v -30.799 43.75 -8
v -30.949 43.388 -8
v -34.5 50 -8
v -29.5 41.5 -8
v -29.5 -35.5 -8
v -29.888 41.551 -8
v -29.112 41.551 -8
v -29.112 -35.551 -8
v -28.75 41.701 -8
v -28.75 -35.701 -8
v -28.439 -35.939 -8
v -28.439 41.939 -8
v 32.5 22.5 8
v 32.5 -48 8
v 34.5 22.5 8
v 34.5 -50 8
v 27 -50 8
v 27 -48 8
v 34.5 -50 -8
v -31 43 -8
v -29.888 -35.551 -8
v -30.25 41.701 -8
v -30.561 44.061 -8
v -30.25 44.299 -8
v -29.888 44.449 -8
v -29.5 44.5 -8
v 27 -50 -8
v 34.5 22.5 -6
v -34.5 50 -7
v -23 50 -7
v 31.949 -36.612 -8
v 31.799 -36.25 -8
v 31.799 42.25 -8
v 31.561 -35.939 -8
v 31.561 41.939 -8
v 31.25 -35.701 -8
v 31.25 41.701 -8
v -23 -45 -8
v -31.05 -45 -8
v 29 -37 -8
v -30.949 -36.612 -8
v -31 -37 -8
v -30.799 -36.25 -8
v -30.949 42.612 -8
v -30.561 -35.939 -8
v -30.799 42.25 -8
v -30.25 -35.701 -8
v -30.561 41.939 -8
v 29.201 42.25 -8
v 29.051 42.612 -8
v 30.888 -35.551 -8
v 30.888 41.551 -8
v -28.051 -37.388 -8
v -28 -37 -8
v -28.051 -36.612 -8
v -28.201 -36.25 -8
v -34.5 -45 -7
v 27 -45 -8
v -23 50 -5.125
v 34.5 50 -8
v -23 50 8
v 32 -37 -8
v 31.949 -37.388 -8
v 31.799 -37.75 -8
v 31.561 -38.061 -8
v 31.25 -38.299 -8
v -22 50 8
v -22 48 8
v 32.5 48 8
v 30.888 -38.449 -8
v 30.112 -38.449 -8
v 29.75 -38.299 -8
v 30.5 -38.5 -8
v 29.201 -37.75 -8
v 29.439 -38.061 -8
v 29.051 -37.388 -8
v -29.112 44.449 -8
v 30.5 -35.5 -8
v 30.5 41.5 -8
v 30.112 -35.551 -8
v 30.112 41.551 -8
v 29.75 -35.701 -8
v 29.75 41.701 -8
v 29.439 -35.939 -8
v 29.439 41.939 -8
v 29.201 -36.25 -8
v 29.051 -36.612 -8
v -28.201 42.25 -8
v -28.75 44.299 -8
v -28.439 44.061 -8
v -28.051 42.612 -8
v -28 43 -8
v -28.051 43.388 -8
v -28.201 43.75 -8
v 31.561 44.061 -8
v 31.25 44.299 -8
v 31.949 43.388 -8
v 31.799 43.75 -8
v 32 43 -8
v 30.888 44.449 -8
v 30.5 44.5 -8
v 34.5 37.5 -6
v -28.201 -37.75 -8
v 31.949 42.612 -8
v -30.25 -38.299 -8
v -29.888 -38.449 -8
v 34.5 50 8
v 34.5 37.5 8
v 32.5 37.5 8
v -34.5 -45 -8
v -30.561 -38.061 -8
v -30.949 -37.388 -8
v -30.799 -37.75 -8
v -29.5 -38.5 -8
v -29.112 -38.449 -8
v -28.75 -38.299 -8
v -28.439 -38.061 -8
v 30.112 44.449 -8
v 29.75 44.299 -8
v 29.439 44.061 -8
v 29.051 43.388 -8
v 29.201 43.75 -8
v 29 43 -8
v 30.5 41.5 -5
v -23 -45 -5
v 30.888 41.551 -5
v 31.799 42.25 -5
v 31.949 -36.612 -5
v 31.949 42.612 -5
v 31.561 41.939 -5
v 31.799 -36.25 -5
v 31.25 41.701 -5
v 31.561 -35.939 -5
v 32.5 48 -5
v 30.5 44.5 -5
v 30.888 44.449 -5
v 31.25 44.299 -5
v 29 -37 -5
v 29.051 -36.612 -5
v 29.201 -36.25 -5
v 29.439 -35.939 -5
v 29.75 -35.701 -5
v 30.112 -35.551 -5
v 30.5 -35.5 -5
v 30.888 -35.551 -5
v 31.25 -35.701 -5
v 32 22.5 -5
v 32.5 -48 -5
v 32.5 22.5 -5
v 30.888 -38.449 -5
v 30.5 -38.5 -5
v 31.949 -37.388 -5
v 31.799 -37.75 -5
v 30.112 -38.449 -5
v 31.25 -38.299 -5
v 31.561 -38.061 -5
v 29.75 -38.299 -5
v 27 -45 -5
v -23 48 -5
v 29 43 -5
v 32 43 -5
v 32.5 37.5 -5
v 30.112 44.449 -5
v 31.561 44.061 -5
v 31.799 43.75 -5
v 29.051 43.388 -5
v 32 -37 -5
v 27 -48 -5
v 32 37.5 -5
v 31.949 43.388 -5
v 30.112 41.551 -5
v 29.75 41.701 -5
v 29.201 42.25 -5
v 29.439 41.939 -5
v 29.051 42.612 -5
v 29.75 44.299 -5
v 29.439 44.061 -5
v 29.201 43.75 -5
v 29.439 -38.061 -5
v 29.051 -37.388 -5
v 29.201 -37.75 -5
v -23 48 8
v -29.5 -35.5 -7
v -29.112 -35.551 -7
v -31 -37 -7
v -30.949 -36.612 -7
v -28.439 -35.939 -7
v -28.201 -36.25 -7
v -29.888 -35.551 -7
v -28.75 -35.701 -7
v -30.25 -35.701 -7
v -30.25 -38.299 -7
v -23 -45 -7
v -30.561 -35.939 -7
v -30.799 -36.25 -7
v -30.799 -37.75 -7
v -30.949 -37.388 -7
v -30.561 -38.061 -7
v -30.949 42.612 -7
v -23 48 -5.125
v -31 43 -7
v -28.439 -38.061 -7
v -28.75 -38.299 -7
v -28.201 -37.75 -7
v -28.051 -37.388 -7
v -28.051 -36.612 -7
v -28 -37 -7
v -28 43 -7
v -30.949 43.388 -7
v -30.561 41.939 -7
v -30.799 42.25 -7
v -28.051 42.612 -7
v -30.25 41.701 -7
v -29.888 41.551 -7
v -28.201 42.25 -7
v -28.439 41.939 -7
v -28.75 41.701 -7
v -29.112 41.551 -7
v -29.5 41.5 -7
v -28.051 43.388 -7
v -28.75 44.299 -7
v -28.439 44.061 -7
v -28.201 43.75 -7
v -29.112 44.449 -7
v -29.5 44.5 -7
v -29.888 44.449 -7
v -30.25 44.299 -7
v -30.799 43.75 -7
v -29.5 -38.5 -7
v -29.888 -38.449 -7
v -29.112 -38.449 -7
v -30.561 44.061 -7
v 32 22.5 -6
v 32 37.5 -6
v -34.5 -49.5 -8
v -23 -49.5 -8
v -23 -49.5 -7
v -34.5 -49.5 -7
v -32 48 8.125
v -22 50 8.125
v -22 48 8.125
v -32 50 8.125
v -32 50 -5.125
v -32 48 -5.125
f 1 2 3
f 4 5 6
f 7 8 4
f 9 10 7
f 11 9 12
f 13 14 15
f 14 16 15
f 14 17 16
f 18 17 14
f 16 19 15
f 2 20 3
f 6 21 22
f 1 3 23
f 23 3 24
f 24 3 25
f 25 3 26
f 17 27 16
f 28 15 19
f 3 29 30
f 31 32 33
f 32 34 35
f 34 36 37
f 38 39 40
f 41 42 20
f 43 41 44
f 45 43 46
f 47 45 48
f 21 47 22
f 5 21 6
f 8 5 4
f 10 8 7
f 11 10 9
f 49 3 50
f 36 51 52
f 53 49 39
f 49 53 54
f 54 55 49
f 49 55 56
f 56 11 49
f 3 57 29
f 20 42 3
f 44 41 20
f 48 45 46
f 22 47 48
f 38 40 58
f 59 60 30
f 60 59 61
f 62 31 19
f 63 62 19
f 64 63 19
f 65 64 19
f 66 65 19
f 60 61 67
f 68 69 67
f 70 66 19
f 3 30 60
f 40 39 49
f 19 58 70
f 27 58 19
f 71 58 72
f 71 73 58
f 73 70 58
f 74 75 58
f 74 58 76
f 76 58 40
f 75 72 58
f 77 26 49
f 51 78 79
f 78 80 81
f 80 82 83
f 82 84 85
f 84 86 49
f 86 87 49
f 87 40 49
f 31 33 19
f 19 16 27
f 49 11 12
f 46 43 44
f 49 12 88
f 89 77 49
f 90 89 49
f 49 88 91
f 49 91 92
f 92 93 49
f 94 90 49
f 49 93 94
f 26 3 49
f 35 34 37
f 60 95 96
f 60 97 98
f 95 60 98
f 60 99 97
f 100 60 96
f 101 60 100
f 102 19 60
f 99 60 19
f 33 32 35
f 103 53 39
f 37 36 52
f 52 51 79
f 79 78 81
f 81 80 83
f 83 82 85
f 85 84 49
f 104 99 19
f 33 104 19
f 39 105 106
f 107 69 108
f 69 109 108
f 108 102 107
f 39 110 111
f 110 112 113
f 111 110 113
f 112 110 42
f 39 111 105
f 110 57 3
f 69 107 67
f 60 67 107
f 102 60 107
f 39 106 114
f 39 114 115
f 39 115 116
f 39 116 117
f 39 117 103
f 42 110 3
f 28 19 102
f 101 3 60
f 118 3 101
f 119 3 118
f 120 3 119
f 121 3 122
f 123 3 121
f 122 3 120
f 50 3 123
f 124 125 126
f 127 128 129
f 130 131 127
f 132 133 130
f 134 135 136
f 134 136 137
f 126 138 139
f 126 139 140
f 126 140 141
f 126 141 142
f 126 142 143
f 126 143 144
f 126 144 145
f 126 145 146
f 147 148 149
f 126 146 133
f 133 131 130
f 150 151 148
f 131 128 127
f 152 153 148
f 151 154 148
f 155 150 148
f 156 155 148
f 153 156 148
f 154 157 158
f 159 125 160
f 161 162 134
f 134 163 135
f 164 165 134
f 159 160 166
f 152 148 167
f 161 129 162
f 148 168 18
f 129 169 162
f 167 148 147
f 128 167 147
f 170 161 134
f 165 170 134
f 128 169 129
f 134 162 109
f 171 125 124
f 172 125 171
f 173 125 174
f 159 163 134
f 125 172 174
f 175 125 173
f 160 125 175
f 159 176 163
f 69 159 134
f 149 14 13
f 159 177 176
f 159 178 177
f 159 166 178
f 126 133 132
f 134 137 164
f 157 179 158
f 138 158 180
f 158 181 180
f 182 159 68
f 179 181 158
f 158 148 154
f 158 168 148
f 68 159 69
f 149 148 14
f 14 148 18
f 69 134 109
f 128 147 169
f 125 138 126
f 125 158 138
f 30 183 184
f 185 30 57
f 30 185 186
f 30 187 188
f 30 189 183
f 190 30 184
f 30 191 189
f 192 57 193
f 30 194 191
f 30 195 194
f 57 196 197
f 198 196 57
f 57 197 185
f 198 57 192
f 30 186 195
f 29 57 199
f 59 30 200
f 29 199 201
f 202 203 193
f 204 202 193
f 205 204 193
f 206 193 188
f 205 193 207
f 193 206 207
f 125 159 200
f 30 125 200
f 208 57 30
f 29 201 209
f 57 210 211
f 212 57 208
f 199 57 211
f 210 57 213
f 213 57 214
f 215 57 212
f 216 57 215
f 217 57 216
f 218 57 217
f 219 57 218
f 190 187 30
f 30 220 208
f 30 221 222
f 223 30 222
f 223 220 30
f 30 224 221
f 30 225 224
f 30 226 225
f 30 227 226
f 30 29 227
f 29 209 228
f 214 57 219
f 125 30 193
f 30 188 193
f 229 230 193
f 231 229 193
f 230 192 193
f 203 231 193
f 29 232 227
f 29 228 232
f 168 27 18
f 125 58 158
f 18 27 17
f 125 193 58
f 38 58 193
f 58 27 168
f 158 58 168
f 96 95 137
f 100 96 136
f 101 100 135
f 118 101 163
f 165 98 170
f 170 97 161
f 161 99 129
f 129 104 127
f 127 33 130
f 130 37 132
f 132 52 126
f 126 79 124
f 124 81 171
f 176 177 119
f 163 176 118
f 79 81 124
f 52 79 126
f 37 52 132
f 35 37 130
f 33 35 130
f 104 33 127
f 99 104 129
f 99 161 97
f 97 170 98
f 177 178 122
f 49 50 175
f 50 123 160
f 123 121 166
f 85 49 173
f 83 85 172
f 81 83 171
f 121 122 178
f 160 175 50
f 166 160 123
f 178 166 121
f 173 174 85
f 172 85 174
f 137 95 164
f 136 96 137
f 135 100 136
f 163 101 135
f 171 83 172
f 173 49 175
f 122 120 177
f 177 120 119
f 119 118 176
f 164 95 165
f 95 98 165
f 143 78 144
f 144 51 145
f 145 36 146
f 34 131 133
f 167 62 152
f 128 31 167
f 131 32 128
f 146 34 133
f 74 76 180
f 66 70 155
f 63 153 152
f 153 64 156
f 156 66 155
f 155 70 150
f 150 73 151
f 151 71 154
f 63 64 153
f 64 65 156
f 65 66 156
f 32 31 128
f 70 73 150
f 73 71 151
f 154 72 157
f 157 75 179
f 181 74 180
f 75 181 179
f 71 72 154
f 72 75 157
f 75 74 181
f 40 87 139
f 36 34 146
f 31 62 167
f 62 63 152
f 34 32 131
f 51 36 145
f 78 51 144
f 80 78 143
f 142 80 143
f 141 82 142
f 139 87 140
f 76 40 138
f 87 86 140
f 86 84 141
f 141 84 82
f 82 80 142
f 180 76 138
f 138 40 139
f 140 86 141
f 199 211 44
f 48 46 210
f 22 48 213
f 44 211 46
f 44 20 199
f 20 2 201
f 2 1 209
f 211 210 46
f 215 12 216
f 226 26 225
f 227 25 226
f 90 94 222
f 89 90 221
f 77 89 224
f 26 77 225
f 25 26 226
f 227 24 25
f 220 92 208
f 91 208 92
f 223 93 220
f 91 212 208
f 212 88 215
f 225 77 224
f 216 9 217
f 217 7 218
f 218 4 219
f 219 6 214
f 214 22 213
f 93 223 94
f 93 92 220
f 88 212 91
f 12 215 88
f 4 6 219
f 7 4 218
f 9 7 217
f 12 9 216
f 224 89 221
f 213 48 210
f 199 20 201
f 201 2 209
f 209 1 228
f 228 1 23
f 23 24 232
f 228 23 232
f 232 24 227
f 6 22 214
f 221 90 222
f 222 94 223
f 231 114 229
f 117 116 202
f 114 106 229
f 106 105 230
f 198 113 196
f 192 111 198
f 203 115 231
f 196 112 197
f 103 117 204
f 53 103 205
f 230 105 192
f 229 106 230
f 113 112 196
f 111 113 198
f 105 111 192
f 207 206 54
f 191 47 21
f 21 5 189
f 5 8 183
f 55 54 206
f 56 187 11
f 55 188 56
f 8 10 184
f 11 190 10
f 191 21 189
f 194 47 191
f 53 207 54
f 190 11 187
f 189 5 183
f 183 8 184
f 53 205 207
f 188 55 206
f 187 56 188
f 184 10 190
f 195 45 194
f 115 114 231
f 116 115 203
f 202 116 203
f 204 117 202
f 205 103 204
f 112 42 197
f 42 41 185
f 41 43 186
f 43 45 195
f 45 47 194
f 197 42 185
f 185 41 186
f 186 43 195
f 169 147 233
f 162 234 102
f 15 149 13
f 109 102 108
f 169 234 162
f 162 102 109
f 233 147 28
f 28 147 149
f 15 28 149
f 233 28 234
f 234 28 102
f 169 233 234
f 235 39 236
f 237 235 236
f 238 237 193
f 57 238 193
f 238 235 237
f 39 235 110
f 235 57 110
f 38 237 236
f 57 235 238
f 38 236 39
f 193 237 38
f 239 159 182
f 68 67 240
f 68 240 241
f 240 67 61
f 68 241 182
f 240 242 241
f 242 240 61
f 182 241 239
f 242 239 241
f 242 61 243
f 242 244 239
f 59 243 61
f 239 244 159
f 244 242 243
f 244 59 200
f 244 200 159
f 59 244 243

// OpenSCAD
$fa = 1;
$fs = 0.4;


vpl = 69;
vpw = 100;
vph = 16;

module video_plate() {
    union() {
        difference() {
            cube([vpl,vpw,vph], center=true);  // outer cube
            translate([0, 0, 2])
                cube([vpl-4, vpw-4, vph-2], center=true);  // inner cube
            translate([-(vpl/2) + 4, 0, 1])
                cube([15, vpw, vph], center=true); // cut out for adjoining plates
            translate([(vpl/2) - 42, -(vpw/ 2), 0])
                cube([vpl, 10, 26], center=true); // power, HDMI, USB-C
            translate([-(vpl/2) + 65, (vpw/2) - 7, -vph / 2])
                cylinder(d=3, h=3); // top stand side standoff hole
            translate([-(vpl/2) + 65, (vpw/2) - 87, -vph / 2])
                cylinder(d=3, h=3); // bottom stand side standoff hole
            translate([-(vpl/2) + 5, (vpw/2) - 7, -vph / 2])
                cylinder(d=3, h=3); // top video board pi side standoff hole
            translate([-(vpl/2) + 5, (vpw/2) - 87, -vph / 2])
                cylinder(d=3, h=3); // bottom video board pi side standoff hole
            translate([(vpl/2),(vpw/2)-20,1.5])
                cube([5, 15, 15], center=true); // access to power button on video parent_module
        }
        translate([-(vpl/2)+ 5.75,-(vpw/2) + 3,-7.5])
            cube([11.5,5,1], center=true);
        translate([-27, 49, 1.5])
            cube([10, 2, 13.25], center=true);
    }
}


video_plate();
